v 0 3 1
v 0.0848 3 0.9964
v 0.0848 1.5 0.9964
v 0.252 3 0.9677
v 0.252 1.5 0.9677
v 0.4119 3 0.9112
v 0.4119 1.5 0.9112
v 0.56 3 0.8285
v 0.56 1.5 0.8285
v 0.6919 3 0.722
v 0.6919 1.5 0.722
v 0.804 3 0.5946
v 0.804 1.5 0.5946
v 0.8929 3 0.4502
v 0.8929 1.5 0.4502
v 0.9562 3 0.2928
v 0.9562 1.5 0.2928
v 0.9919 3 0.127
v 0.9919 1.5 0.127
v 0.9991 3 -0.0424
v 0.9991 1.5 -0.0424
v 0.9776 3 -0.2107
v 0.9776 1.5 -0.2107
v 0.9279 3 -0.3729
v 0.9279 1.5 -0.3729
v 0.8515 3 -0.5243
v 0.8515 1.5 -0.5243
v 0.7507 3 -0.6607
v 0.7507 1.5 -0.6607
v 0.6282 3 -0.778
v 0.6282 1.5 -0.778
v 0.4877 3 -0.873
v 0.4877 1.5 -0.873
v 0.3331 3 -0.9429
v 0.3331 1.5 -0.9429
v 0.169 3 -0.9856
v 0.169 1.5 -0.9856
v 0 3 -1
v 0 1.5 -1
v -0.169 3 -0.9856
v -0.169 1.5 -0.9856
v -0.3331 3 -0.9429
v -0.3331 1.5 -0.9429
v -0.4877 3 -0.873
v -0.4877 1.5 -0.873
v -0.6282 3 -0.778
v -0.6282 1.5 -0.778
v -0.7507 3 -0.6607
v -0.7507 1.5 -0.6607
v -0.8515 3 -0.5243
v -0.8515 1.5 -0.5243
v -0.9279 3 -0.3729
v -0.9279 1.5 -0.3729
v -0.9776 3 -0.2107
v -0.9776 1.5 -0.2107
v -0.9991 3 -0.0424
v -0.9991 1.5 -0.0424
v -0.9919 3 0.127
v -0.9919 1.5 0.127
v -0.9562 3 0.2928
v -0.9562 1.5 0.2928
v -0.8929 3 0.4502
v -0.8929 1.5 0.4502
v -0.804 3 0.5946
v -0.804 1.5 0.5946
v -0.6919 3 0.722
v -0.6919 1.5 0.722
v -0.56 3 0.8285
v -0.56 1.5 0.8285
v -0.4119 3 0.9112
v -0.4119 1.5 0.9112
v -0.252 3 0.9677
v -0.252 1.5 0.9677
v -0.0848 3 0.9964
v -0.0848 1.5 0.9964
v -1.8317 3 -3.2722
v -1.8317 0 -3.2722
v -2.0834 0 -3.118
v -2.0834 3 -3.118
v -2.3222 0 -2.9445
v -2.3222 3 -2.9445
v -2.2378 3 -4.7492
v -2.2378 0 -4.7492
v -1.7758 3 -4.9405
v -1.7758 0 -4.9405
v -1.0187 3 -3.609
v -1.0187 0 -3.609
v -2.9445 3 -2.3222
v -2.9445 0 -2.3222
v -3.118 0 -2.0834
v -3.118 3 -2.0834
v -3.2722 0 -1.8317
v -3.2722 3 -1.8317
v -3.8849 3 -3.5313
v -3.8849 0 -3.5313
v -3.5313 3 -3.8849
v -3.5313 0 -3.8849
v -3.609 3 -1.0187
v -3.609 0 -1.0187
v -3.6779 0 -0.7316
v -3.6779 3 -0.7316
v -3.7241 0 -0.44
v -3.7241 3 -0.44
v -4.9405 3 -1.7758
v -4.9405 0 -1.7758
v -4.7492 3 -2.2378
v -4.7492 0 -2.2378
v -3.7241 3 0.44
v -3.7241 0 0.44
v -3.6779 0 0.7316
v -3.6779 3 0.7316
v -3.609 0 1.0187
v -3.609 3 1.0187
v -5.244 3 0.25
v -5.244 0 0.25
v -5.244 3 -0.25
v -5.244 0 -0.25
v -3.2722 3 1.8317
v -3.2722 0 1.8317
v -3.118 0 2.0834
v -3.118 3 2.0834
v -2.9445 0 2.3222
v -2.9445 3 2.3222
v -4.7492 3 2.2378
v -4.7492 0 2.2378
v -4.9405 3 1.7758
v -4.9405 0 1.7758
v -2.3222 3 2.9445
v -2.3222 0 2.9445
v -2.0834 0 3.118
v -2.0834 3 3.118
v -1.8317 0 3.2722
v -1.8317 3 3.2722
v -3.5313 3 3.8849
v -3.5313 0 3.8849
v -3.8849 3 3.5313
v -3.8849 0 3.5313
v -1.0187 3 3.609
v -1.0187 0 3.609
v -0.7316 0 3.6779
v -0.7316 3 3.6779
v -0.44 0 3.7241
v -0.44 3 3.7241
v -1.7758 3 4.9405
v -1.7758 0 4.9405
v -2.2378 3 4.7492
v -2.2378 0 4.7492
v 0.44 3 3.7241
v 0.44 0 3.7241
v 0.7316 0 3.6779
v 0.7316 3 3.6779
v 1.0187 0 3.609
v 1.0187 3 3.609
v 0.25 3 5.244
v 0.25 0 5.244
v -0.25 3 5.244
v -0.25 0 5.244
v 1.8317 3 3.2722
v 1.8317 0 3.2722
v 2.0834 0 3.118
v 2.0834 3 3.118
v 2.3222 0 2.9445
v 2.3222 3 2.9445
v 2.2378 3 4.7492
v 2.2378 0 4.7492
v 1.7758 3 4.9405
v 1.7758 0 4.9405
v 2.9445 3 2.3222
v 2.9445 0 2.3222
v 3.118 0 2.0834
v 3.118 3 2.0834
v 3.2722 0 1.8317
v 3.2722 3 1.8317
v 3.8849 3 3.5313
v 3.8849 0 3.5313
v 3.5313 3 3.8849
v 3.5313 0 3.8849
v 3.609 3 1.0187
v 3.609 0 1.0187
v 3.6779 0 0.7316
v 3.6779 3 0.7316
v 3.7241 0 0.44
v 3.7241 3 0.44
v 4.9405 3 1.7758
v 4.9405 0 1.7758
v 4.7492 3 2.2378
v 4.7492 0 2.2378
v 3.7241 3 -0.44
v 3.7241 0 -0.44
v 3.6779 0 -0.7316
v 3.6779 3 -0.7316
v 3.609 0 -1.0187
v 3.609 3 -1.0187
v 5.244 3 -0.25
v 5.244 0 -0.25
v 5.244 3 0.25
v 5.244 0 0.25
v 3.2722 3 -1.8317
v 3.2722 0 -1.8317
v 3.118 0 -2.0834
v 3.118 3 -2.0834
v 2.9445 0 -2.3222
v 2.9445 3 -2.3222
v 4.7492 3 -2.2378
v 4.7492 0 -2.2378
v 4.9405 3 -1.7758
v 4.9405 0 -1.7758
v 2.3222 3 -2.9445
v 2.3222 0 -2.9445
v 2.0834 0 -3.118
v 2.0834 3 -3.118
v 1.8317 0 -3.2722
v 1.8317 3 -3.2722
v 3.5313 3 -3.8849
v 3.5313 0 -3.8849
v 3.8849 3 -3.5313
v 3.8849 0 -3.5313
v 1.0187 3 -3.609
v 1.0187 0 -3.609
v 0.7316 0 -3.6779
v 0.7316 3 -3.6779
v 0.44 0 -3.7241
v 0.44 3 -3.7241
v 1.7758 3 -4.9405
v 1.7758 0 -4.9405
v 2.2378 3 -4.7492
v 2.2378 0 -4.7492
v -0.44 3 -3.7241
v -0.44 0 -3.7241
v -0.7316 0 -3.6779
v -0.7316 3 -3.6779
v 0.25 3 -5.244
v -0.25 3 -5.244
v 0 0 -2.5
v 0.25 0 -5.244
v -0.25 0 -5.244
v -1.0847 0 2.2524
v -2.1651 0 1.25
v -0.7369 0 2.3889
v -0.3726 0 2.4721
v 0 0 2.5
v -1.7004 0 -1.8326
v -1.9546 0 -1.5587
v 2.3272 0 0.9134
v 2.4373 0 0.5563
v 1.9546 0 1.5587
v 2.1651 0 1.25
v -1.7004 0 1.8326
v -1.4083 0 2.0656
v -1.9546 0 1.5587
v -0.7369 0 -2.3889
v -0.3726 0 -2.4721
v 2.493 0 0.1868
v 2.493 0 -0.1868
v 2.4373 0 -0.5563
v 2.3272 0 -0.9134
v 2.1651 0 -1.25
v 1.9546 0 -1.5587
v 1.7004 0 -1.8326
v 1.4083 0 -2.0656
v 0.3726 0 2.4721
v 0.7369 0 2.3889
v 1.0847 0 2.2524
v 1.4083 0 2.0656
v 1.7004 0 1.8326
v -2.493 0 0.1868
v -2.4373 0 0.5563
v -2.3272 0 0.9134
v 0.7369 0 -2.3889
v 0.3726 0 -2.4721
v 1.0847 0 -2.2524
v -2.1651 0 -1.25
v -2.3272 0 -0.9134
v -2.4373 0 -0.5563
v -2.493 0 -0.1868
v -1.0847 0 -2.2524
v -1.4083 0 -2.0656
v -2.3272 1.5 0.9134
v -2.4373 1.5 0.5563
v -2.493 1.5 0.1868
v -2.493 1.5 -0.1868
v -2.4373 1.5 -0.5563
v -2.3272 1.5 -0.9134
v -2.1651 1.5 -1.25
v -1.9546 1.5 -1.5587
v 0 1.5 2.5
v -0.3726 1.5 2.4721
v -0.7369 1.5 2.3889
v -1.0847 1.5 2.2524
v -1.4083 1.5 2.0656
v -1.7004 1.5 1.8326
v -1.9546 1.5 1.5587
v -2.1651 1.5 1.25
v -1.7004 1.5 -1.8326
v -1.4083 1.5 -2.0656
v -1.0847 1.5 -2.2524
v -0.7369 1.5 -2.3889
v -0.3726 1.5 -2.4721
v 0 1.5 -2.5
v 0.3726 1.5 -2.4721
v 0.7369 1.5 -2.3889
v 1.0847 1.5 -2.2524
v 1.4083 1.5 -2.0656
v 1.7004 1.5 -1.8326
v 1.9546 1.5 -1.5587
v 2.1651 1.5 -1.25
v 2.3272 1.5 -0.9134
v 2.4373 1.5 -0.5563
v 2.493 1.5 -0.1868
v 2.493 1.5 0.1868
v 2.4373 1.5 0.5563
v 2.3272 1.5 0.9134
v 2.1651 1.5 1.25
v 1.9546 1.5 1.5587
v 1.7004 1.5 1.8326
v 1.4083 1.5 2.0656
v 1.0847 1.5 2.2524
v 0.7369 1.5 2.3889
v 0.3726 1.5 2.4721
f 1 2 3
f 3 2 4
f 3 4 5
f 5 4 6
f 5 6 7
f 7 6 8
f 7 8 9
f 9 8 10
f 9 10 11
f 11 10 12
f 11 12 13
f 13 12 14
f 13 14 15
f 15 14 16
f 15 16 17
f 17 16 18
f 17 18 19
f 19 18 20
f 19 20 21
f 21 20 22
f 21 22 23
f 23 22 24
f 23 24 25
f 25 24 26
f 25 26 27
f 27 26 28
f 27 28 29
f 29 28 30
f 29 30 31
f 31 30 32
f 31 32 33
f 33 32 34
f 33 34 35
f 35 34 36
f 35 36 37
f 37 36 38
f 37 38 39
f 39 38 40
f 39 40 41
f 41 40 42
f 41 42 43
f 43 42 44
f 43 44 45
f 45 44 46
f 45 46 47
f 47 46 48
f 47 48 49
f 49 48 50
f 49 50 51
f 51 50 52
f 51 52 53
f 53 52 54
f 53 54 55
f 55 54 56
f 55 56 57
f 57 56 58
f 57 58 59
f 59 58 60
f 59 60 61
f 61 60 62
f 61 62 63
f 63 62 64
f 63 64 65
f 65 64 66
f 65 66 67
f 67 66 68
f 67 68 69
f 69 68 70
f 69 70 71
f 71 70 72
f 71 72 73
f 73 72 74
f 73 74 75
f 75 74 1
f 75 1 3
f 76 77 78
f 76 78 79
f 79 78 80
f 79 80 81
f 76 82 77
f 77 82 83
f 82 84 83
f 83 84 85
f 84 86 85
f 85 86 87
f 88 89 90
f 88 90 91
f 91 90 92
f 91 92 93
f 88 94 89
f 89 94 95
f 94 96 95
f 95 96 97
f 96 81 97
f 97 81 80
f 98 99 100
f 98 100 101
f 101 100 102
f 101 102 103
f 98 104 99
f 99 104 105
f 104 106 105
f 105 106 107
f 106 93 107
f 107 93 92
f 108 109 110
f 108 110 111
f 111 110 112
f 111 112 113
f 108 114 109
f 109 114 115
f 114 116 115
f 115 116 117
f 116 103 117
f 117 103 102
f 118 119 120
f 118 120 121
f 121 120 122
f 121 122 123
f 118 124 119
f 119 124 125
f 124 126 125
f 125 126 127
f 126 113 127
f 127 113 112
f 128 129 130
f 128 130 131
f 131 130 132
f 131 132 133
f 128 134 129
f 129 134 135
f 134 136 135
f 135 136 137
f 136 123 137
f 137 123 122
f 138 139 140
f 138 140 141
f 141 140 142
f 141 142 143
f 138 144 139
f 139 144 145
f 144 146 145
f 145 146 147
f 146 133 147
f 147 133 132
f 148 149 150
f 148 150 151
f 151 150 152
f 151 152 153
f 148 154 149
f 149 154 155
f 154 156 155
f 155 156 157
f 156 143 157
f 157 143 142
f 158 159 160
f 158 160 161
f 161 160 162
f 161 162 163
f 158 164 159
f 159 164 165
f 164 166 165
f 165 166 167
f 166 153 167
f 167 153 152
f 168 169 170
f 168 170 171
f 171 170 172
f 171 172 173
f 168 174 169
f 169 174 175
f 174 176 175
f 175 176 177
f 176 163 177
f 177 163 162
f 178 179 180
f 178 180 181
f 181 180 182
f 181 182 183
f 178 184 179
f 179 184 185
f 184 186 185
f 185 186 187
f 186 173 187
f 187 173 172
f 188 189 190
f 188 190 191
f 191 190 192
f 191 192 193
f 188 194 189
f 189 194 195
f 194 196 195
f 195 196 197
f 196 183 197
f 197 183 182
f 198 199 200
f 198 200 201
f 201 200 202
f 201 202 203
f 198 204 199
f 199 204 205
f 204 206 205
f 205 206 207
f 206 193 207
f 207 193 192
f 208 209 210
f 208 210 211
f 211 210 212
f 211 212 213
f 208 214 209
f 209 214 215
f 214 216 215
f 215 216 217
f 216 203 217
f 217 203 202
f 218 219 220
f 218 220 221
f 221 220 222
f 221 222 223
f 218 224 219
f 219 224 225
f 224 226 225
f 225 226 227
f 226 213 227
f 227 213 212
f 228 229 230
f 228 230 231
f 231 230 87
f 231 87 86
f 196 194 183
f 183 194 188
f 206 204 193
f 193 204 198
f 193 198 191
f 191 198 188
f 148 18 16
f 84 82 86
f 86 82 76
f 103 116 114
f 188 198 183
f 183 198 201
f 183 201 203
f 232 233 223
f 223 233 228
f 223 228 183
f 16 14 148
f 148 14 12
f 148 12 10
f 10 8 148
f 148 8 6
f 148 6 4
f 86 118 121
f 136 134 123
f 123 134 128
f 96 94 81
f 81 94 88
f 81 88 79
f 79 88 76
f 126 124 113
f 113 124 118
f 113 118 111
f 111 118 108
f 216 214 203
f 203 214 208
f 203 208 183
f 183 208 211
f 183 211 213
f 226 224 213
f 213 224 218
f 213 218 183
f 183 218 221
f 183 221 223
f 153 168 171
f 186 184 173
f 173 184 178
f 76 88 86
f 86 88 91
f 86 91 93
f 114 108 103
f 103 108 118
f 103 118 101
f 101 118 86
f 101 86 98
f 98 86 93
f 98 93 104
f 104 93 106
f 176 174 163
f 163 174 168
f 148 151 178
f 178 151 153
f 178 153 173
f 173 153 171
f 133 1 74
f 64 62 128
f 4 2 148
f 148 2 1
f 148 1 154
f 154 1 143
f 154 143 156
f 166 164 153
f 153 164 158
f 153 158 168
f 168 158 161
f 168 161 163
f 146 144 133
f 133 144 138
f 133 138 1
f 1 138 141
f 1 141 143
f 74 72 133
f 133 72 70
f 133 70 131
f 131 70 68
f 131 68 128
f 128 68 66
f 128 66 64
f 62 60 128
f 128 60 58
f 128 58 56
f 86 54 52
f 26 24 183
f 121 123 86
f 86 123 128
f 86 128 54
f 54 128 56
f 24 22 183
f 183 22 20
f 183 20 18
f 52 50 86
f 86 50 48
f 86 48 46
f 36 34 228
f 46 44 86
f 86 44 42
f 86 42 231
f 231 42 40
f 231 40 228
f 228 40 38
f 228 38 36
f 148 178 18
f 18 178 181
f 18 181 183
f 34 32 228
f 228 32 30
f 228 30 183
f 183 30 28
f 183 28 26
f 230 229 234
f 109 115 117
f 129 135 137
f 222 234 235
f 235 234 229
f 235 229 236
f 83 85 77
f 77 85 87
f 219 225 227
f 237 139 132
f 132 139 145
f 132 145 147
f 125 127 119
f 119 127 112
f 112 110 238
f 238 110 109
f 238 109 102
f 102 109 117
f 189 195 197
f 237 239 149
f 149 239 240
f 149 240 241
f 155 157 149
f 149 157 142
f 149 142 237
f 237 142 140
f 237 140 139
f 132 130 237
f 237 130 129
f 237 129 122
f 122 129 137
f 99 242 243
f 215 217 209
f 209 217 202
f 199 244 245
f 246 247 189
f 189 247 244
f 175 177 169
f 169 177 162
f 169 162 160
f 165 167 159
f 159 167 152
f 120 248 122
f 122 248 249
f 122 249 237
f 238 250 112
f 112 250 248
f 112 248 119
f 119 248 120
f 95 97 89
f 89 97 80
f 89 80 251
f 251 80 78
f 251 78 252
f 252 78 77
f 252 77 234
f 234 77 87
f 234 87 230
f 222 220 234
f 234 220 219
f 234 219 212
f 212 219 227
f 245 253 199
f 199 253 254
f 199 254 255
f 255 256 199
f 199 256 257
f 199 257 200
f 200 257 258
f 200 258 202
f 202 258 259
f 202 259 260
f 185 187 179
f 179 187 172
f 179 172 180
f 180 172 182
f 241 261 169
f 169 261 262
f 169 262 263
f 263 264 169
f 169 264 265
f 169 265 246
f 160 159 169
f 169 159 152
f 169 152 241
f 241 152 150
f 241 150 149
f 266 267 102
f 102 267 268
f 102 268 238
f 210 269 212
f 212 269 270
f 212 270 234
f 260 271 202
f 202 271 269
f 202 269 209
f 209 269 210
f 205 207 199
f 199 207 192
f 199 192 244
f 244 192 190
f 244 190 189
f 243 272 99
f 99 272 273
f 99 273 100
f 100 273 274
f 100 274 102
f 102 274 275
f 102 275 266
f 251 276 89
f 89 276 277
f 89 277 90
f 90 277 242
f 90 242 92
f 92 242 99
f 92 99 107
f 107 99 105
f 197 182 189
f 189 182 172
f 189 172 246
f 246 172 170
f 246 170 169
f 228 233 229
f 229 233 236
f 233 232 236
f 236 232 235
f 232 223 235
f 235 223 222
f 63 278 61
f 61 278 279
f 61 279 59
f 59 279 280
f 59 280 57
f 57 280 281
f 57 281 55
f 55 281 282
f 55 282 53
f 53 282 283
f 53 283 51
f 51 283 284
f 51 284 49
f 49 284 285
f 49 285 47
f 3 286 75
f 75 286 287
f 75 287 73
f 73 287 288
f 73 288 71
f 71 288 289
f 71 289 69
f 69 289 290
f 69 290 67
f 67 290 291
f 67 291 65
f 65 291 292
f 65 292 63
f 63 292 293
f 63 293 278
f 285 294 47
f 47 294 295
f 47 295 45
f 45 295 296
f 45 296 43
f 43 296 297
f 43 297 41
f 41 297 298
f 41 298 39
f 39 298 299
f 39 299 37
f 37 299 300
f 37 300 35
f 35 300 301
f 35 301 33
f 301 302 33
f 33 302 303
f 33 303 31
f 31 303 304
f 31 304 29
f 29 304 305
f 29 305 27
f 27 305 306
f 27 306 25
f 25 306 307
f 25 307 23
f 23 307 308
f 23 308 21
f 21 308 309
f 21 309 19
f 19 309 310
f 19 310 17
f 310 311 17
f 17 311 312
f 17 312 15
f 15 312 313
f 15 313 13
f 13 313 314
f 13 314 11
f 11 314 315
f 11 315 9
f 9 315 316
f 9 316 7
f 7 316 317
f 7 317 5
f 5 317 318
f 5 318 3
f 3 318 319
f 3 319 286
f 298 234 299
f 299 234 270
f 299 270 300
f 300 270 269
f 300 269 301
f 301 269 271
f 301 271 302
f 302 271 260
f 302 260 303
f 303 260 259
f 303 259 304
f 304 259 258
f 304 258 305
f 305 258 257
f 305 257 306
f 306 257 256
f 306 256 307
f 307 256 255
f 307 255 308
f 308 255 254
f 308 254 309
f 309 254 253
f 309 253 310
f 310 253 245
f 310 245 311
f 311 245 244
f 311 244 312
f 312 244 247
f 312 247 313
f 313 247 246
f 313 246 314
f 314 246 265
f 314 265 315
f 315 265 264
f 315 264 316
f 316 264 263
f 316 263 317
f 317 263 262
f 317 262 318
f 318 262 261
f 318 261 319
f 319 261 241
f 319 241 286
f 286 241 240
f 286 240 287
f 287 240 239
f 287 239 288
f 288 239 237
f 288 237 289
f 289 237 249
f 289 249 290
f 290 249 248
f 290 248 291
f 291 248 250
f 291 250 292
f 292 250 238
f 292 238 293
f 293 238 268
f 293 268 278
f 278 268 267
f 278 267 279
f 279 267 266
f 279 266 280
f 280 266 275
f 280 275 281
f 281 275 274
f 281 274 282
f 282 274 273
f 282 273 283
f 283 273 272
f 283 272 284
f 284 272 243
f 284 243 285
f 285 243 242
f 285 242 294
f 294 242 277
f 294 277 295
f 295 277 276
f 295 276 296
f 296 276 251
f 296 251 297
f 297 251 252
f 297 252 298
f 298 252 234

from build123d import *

# Parameters (mm, degrees)
SKICA1_R                 = 3.75
P_IDAT_VYSUNUT_M1_DEPTH  = 3
P_IDAT_VYSUNUT_M2_DEPTH  = 3
KRUHOV_POLE1_COUNT       = 16
SKICA3_R                 = 1
ODEBRAT_VYSUNUT_M1_DEPTH = 5
SKICA4_R                 = 2.5
ODEBRAT_VYSUNUT_M2_DEPTH = 1.5


with BuildPart() as part:
    # Skica1 → Přidat vysunutím1 (new body)
    with BuildSketch(Plane(origin=(0, 0, 0), x_dir=(1, 0, 0), z_dir=(0, 1, 0))):
        Circle(SKICA1_R)
    extrude(amount=P_IDAT_VYSUNUT_M1_DEPTH)

    # Skica2 → Přidat vysunutím2 (add)
    with BuildSketch(Plane(origin=(0, 3, 0), x_dir=(1, 0, 0), z_dir=(0, 1, 0))):
        with BuildLine():
            Line((0, 5.244044241), (0.25, 5.244044241))
            Line((0.25, 5.244044241), (0.439992833, 3.724098053))
            ThreePointArc((0.439992833, 3.724098053), (0, 3.75), (-0.439992833, 3.724098053))
            Line((-0.439992833, 3.724098053), (-0.25, 5.244044241))
            Line((-0.25, 5.244044241), (0, 5.244044241))
        make_face()
    p_idat_vysunut_m2 = extrude(amount=-P_IDAT_VYSUNUT_M2_DEPTH)

    # Kruhové pole1: Přidat vysunutím2 ×16 about axis
    kruhov_pole1_axis = Axis((0, 0, 0), (0, 1, 0))
    for i in range(1, KRUHOV_POLE1_COUNT):
        add(p_idat_vysunut_m2.rotate(kruhov_pole1_axis, i * 360 / KRUHOV_POLE1_COUNT))

    # Skica3 → Odebrat vysunutím1 (cut)
    with BuildSketch(Plane.XZ):
        Circle(SKICA3_R)
    extrude(amount=-ODEBRAT_VYSUNUT_M1_DEPTH, mode=Mode.SUBTRACT)

    # Skica4 → Odebrat vysunutím2 (cut)
    with BuildSketch(Plane.XZ):
        Circle(SKICA4_R)
    extrude(amount=-ODEBRAT_VYSUNUT_M2_DEPTH, mode=Mode.SUBTRACT)


solid = part.part
